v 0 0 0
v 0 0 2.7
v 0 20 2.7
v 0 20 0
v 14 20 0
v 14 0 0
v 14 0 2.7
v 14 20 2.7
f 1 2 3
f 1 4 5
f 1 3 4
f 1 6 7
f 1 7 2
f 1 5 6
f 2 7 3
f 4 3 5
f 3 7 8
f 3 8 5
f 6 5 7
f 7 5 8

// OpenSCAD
/* Warning, this is a very basic generator with a lot of approximation 
input data : [PQFP, KJB, 14x20x2.7mm, 100, , A, C04-21292A]
generated by com.zoubworld.electronics.cad.model3d.Basic
Date : Sun Feb 15 10:50:49 CET 2026
*/

//body
color("black")
translate([0,0,0])
cube([14.0,20.0,2.7], center=false);
